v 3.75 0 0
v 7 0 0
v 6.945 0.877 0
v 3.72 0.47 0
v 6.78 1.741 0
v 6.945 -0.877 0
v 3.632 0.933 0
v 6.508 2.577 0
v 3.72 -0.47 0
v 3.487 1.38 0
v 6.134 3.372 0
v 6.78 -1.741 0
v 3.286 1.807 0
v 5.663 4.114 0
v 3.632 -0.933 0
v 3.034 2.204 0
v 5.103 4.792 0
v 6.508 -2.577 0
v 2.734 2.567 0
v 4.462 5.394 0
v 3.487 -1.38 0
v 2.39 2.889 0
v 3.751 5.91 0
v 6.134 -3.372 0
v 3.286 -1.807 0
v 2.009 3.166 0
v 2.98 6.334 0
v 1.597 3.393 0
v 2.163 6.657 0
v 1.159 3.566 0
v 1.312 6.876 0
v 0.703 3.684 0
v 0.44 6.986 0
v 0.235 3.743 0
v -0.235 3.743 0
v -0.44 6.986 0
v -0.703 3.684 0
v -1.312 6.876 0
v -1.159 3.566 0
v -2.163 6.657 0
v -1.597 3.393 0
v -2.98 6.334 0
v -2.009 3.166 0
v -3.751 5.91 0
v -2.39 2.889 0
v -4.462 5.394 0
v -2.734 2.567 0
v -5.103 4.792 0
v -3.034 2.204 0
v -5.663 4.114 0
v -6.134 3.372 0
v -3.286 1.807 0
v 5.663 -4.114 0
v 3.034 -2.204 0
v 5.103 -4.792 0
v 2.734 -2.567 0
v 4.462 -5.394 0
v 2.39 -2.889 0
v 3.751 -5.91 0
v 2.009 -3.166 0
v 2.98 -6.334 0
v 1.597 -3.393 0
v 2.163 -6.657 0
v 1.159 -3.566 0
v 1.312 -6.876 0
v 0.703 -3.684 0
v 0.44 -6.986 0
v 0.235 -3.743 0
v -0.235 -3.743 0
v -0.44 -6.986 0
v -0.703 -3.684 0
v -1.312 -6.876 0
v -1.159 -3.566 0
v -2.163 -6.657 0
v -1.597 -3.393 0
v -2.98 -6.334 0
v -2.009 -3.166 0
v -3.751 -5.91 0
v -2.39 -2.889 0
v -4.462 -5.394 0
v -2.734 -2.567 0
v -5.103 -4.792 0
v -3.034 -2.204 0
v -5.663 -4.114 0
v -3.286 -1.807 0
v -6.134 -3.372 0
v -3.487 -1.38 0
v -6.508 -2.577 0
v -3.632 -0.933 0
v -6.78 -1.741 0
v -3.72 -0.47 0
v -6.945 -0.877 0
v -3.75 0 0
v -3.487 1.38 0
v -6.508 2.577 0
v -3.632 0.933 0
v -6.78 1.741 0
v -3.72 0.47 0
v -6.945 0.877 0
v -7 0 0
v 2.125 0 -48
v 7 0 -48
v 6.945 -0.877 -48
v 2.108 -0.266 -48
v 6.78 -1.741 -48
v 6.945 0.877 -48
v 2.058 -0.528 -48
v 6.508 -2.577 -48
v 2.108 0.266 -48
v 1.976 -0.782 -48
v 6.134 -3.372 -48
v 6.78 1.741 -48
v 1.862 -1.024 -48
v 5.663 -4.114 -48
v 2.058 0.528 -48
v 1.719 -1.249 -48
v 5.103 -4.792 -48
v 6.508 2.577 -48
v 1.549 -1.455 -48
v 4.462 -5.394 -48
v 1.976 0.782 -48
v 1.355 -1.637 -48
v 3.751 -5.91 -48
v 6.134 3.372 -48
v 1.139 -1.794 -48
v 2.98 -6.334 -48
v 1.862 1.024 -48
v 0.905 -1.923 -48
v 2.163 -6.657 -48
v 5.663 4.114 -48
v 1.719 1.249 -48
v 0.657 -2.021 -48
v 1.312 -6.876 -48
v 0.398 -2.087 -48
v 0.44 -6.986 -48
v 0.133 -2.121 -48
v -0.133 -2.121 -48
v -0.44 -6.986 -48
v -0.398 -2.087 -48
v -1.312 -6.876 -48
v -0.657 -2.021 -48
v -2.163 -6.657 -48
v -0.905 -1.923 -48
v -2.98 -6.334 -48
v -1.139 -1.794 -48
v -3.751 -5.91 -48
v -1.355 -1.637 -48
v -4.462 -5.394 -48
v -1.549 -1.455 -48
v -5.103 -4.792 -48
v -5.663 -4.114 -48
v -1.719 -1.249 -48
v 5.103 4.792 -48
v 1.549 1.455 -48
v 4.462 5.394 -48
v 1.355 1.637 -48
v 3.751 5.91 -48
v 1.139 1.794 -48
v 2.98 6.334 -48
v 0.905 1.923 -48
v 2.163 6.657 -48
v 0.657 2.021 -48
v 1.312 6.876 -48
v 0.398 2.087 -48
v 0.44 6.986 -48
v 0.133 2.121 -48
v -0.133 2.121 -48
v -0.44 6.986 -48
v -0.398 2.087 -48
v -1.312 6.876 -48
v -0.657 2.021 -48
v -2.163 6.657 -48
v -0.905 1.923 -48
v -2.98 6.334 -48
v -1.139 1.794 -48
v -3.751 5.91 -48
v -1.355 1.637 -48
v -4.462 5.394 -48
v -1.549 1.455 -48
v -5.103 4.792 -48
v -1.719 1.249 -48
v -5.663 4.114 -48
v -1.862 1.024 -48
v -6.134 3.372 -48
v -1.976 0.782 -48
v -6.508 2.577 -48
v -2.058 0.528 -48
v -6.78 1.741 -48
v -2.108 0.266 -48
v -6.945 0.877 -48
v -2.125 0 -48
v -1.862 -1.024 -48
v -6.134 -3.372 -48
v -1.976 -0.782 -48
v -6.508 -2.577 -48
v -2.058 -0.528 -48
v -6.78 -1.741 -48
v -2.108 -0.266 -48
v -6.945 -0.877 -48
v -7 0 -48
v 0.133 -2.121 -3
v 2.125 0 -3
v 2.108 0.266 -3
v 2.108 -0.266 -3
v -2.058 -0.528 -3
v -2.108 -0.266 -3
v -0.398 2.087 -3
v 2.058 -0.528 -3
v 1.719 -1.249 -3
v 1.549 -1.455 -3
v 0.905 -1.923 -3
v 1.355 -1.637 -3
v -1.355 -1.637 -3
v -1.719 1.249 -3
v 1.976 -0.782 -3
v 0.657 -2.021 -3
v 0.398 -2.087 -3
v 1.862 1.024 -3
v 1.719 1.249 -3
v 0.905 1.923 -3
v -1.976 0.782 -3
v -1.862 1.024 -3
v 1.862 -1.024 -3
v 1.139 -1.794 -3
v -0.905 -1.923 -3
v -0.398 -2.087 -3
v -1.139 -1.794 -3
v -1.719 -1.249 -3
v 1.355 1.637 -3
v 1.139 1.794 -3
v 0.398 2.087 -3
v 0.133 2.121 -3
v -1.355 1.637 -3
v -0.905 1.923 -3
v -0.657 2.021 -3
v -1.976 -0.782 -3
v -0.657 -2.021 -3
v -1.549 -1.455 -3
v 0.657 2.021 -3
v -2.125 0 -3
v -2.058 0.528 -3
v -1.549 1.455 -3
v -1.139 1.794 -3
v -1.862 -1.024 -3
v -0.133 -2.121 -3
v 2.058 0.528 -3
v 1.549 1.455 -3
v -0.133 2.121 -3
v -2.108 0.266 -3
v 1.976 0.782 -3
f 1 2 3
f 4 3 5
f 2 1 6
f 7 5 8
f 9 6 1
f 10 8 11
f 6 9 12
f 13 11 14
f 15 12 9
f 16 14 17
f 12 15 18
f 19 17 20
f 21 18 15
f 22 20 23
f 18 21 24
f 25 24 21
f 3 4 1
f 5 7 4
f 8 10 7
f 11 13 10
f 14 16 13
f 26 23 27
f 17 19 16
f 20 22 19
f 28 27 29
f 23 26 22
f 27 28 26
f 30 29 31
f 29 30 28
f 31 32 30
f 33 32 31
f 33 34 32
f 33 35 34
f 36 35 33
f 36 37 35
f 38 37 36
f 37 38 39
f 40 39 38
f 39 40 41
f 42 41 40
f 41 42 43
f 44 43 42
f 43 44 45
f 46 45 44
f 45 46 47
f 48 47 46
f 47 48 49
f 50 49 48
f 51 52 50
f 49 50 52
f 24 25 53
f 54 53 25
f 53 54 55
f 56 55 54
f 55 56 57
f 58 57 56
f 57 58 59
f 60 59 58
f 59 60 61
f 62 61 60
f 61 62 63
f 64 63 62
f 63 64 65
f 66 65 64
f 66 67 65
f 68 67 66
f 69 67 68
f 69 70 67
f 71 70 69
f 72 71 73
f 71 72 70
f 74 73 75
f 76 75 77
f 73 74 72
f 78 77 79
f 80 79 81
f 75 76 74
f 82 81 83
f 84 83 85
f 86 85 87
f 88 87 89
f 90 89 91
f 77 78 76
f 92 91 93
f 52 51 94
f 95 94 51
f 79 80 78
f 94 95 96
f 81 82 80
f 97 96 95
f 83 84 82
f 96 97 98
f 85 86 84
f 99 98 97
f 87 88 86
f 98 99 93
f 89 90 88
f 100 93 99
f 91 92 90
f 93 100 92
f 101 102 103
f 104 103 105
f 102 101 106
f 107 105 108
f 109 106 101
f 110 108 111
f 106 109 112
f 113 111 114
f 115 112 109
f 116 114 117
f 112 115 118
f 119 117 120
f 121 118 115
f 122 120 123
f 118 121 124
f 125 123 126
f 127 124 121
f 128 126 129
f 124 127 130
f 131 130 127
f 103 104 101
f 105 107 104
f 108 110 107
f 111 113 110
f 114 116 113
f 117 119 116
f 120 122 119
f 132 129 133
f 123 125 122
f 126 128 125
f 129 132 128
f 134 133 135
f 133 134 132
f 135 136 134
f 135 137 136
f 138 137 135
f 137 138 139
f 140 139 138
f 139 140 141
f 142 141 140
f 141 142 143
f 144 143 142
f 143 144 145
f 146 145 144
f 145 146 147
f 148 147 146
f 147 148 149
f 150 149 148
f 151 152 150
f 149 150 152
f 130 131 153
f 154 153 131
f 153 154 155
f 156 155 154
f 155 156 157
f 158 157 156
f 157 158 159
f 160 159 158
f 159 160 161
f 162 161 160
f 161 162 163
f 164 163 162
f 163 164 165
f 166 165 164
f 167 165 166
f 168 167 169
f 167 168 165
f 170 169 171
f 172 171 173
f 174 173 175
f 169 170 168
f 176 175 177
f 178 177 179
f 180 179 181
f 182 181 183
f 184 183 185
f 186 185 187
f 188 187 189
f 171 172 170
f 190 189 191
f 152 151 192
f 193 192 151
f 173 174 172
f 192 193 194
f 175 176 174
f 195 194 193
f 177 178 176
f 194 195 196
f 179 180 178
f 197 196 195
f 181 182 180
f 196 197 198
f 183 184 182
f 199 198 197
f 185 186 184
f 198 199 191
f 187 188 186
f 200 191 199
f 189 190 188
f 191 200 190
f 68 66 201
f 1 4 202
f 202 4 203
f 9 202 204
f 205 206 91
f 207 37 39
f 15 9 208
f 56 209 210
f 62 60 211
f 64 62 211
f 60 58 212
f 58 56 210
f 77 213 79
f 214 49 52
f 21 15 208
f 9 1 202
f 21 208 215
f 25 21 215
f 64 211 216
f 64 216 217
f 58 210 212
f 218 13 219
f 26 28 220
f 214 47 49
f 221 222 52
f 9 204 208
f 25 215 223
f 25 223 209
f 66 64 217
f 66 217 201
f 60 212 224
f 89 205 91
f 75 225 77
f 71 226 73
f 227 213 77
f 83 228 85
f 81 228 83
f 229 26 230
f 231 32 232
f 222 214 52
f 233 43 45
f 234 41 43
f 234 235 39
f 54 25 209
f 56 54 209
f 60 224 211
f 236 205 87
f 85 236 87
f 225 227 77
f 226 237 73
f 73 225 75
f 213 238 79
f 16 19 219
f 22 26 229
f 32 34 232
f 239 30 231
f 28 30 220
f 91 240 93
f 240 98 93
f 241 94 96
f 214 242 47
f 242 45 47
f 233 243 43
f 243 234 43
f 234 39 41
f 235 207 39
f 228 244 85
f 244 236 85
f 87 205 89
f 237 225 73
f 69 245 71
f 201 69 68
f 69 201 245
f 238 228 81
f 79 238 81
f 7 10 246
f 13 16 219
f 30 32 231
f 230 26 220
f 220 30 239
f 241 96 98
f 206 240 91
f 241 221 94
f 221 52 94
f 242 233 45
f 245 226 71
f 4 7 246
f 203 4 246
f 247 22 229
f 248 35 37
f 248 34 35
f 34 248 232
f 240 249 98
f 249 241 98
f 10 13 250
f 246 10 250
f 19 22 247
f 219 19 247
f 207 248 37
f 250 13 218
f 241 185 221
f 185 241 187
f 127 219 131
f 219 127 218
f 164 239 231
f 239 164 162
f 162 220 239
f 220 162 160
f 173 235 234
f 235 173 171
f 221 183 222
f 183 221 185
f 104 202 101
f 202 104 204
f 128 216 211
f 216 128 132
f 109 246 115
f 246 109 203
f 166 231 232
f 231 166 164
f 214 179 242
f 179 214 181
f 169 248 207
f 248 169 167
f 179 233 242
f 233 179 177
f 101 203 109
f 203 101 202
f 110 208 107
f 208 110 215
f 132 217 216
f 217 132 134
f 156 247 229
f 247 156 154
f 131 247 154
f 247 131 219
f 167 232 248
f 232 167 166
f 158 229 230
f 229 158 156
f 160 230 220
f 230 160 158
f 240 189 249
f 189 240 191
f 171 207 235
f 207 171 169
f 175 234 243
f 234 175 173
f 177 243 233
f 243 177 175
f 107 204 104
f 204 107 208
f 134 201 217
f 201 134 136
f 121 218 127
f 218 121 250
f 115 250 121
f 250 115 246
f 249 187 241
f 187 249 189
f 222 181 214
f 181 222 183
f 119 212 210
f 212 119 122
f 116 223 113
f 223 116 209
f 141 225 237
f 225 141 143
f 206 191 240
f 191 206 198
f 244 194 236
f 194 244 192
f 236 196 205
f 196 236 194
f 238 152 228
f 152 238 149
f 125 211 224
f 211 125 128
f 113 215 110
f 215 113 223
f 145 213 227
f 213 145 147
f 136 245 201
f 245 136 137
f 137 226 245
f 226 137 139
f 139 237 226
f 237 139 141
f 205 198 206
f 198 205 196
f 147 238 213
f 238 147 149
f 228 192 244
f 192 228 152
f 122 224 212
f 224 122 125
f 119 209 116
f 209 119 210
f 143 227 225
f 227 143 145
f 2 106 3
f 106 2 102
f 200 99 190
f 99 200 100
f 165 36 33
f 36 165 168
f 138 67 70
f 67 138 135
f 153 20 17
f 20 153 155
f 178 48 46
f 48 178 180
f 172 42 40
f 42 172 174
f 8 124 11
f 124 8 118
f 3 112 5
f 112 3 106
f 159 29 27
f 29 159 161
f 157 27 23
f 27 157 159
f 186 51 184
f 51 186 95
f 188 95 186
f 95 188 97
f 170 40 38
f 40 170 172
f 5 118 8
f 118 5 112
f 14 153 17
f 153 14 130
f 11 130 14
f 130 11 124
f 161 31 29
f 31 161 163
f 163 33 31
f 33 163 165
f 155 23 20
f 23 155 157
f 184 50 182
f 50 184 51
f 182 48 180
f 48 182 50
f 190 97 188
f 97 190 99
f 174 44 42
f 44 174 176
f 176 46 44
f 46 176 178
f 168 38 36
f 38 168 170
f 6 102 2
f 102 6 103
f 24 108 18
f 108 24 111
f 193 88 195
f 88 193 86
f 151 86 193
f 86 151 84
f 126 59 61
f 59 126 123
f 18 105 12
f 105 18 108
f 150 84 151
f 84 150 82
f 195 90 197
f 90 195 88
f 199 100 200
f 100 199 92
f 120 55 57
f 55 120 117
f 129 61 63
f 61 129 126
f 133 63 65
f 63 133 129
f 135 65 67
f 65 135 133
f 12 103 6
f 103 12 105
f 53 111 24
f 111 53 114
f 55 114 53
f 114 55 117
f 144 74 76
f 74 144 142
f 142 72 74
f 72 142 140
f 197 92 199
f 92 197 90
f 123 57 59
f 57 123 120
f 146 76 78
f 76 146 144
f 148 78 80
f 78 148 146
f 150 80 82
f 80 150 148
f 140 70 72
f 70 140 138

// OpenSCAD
$fn = 50;


difference() {
	union() {
		translate(v = [0, 0, -48.0000000000]) {
			cylinder(h = 48, r = 7.0000000000);
		}
		cylinder(h = 0, r = 10.0000000000);
	}
	union() {
		translate(v = [0, 0, 0]) {
			rotate(a = [0, 0, 0]) {
				difference() {
					union() {
						#translate(v = [0, 0, -48.0000000000]) {
							cylinder(h = 48, r = 2.0000000000);
						}
						#translate(v = [0, 0, -3]) {
							cylinder(h = 3, r1 = 2.1250000000, r2 = 3.7500000000);
						}
						#translate(v = [0, 0, -48.0000000000]) {
							cylinder(h = 48, r = 2.1250000000);
						}
						#translate(v = [0, 0, -48.0000000000]) {
							cylinder(h = 48, r = 2.0000000000);
						}
					}
					union();
				}
			}
		}
	}
}
